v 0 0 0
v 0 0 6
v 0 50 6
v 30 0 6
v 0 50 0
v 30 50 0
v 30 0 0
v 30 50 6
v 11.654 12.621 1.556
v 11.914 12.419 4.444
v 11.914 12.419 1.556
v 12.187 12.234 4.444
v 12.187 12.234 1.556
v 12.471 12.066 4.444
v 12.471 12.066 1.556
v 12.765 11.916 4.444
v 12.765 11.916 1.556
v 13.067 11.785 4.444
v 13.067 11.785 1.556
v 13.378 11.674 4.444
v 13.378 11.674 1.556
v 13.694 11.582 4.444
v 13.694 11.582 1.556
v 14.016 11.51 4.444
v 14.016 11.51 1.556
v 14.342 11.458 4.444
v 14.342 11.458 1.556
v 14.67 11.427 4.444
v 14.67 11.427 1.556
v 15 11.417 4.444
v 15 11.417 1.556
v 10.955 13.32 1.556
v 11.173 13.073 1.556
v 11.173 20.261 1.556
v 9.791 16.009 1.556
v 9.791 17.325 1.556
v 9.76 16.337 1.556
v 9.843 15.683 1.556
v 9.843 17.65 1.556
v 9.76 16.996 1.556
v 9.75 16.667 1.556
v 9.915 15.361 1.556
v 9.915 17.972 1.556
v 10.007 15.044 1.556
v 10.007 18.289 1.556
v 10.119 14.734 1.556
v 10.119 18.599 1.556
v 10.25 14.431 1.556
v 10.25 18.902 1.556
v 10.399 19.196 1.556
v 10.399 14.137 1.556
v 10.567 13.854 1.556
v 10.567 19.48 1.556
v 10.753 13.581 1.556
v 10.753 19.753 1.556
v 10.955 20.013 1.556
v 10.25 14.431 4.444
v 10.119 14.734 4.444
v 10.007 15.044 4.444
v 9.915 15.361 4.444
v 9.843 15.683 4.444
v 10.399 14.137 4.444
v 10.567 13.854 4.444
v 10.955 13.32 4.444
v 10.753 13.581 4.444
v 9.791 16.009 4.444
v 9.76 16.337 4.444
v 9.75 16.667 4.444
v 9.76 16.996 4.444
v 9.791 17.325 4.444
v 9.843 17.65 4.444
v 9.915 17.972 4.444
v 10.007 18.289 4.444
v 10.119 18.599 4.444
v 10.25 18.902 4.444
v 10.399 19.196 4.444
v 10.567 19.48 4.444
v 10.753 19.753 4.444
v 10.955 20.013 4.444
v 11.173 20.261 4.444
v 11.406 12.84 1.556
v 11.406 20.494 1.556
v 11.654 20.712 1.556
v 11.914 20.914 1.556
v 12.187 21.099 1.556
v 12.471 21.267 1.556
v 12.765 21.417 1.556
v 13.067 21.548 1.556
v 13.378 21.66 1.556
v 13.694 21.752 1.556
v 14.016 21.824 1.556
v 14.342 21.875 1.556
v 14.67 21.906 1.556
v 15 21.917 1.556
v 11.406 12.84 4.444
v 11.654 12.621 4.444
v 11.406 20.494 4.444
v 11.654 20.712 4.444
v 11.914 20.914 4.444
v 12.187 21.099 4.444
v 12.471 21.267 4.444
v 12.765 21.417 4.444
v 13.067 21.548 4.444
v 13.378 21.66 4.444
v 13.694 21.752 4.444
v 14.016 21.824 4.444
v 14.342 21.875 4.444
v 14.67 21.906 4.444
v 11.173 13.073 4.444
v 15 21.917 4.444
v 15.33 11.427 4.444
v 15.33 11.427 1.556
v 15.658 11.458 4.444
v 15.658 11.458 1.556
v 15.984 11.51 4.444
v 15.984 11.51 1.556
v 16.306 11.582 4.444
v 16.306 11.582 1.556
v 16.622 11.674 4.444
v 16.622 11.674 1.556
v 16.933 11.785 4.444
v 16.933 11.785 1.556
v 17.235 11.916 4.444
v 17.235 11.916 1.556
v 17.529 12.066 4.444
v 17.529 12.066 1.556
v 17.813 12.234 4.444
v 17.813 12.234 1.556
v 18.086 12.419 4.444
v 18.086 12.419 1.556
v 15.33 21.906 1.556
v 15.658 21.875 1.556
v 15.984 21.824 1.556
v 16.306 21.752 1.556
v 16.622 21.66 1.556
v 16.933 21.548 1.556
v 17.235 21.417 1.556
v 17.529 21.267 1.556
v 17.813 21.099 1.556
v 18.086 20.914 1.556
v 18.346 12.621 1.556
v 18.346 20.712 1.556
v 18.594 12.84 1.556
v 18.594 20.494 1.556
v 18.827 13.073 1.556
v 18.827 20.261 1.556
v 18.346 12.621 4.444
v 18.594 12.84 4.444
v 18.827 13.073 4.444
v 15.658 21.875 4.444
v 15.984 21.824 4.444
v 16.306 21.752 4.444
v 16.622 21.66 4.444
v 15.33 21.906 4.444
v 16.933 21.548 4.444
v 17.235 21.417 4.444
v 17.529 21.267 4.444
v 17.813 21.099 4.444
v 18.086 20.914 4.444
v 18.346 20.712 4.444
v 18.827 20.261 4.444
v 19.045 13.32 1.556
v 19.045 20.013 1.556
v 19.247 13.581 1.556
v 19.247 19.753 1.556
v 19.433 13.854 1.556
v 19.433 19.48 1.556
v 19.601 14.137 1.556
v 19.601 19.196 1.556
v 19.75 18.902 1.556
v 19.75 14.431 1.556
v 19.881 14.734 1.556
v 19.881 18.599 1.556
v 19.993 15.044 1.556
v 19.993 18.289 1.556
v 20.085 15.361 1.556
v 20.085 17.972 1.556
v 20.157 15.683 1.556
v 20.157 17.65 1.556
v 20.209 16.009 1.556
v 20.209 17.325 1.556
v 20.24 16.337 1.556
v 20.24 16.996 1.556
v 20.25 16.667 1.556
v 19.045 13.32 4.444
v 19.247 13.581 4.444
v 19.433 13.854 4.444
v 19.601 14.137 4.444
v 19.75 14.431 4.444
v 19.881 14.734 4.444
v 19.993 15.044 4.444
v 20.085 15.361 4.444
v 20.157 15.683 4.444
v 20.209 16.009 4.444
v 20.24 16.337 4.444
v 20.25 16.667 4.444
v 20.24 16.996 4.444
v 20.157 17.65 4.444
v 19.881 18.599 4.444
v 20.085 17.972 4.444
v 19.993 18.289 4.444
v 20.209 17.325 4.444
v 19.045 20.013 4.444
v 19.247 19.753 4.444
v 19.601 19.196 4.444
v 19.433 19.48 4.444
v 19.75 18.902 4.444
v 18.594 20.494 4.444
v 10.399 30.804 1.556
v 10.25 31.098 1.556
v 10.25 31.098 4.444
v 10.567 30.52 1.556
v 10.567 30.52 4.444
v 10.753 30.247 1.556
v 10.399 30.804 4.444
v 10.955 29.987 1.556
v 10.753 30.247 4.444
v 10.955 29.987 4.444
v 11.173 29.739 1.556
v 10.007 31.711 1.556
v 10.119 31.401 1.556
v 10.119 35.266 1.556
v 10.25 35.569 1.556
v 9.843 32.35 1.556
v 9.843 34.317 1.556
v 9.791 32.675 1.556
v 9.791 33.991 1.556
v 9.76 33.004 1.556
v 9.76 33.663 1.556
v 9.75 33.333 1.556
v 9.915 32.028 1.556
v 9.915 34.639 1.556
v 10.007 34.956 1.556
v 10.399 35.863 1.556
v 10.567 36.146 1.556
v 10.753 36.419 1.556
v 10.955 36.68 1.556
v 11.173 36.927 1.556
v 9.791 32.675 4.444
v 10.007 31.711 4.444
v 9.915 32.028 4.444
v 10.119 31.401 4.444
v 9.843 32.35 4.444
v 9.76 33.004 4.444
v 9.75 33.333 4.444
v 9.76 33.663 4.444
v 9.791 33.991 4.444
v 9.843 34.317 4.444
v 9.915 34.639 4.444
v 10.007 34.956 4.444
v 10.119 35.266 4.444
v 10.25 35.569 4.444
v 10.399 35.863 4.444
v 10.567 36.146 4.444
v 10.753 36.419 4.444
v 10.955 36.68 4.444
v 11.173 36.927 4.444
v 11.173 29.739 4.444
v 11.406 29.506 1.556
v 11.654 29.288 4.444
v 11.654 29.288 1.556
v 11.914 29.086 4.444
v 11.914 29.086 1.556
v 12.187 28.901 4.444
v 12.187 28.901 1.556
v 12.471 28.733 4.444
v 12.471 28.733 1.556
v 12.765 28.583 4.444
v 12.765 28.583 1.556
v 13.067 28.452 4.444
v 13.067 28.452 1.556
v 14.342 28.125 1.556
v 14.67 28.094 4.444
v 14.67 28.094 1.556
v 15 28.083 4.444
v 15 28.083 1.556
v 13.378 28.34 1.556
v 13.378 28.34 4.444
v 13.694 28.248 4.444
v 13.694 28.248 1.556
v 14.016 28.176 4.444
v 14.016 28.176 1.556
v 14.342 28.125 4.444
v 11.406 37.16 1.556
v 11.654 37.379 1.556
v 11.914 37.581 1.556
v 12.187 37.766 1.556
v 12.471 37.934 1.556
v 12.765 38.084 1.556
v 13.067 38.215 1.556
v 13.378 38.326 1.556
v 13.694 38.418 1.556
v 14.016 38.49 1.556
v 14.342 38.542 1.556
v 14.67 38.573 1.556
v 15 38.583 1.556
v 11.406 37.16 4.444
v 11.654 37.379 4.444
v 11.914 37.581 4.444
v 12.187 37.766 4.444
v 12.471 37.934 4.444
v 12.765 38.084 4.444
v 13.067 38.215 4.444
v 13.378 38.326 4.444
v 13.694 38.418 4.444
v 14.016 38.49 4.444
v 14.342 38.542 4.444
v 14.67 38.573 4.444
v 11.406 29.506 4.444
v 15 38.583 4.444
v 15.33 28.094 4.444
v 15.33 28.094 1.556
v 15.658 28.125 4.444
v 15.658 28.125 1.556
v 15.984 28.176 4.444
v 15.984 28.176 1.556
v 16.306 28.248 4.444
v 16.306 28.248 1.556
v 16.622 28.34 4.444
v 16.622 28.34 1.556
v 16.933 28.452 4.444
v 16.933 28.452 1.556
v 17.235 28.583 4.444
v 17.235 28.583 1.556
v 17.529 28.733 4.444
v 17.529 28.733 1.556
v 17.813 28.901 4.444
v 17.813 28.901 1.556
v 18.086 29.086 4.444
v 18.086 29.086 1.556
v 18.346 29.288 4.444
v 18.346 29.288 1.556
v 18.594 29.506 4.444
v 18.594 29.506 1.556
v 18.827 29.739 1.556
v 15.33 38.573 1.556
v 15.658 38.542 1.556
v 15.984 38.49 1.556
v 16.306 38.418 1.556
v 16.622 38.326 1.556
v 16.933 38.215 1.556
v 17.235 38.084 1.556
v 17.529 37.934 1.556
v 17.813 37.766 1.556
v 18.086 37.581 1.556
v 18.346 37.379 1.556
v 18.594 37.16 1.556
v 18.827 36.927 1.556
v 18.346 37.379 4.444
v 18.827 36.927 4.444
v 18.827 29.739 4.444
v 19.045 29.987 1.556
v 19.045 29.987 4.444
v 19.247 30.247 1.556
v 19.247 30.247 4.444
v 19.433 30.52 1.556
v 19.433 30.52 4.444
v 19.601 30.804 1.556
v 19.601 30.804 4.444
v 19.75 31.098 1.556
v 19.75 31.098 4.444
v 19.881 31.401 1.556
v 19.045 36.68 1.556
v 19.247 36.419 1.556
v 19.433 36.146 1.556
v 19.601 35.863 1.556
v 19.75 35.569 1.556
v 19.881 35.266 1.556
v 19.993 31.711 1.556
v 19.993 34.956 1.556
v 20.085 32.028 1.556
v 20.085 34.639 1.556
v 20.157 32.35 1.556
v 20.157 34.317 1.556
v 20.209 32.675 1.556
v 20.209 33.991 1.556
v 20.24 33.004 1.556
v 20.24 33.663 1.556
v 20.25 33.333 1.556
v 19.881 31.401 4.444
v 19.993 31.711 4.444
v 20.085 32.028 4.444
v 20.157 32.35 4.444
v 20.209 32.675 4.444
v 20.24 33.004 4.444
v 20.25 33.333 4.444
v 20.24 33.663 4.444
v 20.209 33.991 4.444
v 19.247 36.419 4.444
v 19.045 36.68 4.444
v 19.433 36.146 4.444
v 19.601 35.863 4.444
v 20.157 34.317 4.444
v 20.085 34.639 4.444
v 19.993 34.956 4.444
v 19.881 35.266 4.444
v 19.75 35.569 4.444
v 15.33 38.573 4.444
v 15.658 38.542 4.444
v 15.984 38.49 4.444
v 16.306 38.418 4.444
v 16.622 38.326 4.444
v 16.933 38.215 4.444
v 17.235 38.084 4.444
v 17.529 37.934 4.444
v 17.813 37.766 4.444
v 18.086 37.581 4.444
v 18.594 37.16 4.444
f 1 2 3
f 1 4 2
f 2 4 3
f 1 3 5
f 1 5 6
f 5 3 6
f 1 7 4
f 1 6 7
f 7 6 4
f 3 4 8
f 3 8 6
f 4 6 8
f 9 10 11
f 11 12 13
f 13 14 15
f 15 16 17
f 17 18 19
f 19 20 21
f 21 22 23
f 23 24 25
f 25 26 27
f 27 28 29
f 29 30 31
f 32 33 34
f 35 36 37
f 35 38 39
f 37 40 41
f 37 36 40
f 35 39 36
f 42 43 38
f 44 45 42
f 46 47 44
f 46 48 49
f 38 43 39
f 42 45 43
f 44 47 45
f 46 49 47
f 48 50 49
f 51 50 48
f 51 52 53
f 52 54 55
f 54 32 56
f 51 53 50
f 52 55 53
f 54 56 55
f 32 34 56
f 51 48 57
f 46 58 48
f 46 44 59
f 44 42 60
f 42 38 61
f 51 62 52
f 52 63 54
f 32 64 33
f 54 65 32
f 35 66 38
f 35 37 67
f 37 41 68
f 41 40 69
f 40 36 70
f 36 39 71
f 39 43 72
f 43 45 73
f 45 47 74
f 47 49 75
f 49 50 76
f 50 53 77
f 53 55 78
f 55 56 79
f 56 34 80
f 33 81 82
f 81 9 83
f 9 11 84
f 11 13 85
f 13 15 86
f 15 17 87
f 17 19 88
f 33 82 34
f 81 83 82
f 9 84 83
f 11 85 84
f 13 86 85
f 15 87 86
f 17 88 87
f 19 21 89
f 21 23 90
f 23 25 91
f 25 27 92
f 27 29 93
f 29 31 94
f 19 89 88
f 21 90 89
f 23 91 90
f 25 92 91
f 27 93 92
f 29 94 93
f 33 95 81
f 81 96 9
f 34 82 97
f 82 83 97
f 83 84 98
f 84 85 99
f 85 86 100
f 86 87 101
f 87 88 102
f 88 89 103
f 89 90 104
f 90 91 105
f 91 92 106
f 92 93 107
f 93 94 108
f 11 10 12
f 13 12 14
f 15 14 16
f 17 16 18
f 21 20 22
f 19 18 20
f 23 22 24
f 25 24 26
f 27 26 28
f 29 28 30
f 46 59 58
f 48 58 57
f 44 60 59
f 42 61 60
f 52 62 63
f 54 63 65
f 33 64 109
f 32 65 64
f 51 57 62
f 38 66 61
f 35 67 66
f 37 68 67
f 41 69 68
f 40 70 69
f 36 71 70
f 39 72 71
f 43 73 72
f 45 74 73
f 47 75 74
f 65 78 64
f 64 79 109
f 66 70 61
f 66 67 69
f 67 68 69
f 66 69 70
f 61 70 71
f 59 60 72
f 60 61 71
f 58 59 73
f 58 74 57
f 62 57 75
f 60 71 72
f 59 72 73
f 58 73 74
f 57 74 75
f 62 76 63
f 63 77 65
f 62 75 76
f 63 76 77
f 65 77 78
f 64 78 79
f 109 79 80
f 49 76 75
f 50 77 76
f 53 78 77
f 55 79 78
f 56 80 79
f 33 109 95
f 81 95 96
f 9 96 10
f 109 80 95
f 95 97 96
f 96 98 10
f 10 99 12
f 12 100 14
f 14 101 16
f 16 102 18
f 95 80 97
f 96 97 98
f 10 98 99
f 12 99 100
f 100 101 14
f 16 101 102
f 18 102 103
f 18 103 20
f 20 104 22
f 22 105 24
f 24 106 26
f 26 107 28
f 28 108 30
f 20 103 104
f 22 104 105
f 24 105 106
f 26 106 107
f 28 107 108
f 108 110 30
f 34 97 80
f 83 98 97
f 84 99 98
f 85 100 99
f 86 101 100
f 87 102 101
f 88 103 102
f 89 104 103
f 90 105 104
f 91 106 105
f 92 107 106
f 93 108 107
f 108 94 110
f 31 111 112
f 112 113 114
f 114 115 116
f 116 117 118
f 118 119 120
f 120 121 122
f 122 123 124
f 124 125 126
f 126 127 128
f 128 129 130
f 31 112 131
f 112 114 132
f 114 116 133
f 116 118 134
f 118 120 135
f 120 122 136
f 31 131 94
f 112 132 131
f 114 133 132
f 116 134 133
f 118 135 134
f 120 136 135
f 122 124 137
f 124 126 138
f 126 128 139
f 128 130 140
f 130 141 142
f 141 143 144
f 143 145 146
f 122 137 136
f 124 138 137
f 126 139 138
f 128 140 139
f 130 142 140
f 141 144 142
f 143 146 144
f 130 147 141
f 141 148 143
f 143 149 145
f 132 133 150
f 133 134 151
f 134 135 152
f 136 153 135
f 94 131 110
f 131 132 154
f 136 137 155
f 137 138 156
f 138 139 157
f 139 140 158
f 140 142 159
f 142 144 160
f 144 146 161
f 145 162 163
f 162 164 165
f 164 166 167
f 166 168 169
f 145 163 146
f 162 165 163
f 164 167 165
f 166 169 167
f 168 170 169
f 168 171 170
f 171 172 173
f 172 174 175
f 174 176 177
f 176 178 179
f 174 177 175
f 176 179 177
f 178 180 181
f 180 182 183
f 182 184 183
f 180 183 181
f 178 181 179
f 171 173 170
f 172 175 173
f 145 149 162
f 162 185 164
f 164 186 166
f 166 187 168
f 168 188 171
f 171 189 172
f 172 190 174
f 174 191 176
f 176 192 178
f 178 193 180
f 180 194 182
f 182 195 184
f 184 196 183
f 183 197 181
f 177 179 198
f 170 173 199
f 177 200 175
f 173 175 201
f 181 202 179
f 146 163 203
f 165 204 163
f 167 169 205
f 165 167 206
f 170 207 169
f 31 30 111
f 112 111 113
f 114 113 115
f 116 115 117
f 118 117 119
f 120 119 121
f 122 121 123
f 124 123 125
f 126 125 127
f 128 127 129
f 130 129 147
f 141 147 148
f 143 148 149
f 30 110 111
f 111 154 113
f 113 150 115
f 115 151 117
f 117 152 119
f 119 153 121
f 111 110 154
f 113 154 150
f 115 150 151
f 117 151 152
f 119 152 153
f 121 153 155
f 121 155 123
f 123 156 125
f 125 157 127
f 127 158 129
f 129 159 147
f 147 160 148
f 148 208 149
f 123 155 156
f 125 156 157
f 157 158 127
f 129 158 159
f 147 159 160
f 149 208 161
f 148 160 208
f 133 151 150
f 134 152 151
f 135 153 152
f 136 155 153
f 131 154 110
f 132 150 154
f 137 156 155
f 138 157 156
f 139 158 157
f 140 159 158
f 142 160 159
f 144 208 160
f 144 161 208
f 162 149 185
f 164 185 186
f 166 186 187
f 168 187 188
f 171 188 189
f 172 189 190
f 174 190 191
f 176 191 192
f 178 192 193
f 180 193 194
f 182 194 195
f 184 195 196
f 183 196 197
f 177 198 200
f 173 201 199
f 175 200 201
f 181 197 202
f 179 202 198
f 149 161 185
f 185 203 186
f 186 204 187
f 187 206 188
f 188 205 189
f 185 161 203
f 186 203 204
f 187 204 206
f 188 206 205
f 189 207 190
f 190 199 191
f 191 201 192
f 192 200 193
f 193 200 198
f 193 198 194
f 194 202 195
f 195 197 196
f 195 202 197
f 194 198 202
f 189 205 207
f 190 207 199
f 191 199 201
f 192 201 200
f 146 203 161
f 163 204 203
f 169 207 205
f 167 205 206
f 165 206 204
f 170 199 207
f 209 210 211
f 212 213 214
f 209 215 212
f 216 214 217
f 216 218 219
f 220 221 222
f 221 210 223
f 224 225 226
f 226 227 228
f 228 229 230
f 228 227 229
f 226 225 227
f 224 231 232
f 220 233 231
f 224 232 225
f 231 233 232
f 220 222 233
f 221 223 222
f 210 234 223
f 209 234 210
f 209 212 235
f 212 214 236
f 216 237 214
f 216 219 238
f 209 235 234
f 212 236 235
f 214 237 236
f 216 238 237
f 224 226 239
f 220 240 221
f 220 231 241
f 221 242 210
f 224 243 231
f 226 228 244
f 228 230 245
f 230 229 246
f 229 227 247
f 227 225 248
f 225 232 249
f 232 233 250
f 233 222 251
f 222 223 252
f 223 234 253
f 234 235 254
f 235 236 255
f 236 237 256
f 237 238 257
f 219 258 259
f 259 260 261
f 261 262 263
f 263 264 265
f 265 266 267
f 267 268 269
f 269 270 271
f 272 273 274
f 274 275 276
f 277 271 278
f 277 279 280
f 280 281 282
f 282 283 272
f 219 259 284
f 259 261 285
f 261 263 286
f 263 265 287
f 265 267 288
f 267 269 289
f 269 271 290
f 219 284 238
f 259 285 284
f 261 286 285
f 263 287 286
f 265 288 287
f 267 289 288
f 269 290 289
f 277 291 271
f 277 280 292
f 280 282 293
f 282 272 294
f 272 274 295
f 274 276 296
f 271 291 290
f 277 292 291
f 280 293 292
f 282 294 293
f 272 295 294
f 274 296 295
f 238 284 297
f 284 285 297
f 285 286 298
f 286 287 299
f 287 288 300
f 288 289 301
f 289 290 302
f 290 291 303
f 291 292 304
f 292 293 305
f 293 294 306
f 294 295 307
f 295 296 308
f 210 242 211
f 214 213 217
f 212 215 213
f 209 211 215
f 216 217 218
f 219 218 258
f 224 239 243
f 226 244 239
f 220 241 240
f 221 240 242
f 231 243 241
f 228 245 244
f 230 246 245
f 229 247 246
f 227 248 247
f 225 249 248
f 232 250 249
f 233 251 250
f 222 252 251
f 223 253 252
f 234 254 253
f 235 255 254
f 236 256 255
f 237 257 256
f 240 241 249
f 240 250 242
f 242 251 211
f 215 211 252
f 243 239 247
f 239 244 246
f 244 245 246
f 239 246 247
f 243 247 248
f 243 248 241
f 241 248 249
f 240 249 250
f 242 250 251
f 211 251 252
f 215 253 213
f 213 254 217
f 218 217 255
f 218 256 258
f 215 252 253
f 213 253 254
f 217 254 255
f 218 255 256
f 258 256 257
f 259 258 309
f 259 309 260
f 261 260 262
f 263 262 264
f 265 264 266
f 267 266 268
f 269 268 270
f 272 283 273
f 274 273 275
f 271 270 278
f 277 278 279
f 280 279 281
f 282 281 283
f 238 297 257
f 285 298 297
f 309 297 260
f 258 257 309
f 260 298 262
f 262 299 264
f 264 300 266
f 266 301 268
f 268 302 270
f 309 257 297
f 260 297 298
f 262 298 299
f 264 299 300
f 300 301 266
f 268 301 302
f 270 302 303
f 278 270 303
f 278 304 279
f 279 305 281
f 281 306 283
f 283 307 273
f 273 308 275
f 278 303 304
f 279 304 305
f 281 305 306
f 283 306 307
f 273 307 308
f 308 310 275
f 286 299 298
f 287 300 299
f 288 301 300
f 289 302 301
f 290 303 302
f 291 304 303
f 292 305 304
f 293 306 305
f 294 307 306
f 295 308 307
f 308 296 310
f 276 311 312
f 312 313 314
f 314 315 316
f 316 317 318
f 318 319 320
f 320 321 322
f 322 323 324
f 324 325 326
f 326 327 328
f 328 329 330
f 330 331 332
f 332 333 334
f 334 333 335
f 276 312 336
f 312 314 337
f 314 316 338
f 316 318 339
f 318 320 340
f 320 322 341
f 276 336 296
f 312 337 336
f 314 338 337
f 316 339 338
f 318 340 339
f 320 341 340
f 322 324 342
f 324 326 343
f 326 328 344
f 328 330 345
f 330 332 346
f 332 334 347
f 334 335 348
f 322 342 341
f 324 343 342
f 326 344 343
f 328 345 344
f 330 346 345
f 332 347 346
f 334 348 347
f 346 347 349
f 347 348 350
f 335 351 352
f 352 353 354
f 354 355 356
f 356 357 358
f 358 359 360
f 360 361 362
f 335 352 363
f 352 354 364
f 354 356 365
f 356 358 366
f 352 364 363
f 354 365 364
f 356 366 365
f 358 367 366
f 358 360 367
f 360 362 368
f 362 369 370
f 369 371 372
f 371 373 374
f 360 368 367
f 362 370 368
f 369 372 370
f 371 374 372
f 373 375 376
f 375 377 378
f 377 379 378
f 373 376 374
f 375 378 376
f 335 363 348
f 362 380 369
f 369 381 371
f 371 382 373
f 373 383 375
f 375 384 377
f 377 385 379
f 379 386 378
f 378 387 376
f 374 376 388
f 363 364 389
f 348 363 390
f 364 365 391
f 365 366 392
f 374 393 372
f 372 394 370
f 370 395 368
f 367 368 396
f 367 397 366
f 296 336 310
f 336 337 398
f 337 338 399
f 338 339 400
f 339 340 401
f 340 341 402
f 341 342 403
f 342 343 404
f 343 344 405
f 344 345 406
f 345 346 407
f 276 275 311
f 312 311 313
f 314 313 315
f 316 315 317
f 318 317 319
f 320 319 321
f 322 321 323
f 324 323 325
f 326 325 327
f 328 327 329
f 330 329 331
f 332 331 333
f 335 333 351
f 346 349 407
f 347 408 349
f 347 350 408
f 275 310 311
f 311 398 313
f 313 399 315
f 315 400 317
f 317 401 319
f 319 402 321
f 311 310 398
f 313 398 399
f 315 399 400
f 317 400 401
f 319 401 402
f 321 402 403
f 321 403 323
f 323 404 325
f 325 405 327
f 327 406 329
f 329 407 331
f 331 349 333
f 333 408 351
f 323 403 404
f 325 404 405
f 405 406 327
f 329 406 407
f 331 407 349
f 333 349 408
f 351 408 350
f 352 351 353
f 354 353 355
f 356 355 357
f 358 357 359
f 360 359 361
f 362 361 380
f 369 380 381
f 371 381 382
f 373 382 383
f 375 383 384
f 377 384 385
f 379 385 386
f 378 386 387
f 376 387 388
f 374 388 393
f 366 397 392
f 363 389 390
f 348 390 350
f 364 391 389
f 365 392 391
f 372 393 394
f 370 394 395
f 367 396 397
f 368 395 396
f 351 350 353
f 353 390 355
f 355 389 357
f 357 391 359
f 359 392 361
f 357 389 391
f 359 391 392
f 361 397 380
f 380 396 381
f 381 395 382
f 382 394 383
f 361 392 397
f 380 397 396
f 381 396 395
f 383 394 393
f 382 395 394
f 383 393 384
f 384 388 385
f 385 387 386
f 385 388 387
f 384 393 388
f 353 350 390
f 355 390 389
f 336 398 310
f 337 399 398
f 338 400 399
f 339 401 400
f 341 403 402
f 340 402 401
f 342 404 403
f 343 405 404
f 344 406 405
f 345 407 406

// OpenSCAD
$fn = 100;

//slab dimensions
height = 6;
length = 50;
width = 30;

//magnet dimensions
mag_dia = 10;
mag_height = 2.75;

difference() {
  //extra space for magnet
  mag_height = mag_height*1.05;
  mag_dia = mag_dia*1.05;

  //slab
  cube([width, length, height], center = false);

  translate([width/2,length/3,height/2]){
  cylinder(h = mag_height, d = mag_dia, center = true);
  }

  translate([width/2,2*(length/3),height/2]){
  cylinder(h = mag_height, d = mag_dia, center = true);
  }
}
